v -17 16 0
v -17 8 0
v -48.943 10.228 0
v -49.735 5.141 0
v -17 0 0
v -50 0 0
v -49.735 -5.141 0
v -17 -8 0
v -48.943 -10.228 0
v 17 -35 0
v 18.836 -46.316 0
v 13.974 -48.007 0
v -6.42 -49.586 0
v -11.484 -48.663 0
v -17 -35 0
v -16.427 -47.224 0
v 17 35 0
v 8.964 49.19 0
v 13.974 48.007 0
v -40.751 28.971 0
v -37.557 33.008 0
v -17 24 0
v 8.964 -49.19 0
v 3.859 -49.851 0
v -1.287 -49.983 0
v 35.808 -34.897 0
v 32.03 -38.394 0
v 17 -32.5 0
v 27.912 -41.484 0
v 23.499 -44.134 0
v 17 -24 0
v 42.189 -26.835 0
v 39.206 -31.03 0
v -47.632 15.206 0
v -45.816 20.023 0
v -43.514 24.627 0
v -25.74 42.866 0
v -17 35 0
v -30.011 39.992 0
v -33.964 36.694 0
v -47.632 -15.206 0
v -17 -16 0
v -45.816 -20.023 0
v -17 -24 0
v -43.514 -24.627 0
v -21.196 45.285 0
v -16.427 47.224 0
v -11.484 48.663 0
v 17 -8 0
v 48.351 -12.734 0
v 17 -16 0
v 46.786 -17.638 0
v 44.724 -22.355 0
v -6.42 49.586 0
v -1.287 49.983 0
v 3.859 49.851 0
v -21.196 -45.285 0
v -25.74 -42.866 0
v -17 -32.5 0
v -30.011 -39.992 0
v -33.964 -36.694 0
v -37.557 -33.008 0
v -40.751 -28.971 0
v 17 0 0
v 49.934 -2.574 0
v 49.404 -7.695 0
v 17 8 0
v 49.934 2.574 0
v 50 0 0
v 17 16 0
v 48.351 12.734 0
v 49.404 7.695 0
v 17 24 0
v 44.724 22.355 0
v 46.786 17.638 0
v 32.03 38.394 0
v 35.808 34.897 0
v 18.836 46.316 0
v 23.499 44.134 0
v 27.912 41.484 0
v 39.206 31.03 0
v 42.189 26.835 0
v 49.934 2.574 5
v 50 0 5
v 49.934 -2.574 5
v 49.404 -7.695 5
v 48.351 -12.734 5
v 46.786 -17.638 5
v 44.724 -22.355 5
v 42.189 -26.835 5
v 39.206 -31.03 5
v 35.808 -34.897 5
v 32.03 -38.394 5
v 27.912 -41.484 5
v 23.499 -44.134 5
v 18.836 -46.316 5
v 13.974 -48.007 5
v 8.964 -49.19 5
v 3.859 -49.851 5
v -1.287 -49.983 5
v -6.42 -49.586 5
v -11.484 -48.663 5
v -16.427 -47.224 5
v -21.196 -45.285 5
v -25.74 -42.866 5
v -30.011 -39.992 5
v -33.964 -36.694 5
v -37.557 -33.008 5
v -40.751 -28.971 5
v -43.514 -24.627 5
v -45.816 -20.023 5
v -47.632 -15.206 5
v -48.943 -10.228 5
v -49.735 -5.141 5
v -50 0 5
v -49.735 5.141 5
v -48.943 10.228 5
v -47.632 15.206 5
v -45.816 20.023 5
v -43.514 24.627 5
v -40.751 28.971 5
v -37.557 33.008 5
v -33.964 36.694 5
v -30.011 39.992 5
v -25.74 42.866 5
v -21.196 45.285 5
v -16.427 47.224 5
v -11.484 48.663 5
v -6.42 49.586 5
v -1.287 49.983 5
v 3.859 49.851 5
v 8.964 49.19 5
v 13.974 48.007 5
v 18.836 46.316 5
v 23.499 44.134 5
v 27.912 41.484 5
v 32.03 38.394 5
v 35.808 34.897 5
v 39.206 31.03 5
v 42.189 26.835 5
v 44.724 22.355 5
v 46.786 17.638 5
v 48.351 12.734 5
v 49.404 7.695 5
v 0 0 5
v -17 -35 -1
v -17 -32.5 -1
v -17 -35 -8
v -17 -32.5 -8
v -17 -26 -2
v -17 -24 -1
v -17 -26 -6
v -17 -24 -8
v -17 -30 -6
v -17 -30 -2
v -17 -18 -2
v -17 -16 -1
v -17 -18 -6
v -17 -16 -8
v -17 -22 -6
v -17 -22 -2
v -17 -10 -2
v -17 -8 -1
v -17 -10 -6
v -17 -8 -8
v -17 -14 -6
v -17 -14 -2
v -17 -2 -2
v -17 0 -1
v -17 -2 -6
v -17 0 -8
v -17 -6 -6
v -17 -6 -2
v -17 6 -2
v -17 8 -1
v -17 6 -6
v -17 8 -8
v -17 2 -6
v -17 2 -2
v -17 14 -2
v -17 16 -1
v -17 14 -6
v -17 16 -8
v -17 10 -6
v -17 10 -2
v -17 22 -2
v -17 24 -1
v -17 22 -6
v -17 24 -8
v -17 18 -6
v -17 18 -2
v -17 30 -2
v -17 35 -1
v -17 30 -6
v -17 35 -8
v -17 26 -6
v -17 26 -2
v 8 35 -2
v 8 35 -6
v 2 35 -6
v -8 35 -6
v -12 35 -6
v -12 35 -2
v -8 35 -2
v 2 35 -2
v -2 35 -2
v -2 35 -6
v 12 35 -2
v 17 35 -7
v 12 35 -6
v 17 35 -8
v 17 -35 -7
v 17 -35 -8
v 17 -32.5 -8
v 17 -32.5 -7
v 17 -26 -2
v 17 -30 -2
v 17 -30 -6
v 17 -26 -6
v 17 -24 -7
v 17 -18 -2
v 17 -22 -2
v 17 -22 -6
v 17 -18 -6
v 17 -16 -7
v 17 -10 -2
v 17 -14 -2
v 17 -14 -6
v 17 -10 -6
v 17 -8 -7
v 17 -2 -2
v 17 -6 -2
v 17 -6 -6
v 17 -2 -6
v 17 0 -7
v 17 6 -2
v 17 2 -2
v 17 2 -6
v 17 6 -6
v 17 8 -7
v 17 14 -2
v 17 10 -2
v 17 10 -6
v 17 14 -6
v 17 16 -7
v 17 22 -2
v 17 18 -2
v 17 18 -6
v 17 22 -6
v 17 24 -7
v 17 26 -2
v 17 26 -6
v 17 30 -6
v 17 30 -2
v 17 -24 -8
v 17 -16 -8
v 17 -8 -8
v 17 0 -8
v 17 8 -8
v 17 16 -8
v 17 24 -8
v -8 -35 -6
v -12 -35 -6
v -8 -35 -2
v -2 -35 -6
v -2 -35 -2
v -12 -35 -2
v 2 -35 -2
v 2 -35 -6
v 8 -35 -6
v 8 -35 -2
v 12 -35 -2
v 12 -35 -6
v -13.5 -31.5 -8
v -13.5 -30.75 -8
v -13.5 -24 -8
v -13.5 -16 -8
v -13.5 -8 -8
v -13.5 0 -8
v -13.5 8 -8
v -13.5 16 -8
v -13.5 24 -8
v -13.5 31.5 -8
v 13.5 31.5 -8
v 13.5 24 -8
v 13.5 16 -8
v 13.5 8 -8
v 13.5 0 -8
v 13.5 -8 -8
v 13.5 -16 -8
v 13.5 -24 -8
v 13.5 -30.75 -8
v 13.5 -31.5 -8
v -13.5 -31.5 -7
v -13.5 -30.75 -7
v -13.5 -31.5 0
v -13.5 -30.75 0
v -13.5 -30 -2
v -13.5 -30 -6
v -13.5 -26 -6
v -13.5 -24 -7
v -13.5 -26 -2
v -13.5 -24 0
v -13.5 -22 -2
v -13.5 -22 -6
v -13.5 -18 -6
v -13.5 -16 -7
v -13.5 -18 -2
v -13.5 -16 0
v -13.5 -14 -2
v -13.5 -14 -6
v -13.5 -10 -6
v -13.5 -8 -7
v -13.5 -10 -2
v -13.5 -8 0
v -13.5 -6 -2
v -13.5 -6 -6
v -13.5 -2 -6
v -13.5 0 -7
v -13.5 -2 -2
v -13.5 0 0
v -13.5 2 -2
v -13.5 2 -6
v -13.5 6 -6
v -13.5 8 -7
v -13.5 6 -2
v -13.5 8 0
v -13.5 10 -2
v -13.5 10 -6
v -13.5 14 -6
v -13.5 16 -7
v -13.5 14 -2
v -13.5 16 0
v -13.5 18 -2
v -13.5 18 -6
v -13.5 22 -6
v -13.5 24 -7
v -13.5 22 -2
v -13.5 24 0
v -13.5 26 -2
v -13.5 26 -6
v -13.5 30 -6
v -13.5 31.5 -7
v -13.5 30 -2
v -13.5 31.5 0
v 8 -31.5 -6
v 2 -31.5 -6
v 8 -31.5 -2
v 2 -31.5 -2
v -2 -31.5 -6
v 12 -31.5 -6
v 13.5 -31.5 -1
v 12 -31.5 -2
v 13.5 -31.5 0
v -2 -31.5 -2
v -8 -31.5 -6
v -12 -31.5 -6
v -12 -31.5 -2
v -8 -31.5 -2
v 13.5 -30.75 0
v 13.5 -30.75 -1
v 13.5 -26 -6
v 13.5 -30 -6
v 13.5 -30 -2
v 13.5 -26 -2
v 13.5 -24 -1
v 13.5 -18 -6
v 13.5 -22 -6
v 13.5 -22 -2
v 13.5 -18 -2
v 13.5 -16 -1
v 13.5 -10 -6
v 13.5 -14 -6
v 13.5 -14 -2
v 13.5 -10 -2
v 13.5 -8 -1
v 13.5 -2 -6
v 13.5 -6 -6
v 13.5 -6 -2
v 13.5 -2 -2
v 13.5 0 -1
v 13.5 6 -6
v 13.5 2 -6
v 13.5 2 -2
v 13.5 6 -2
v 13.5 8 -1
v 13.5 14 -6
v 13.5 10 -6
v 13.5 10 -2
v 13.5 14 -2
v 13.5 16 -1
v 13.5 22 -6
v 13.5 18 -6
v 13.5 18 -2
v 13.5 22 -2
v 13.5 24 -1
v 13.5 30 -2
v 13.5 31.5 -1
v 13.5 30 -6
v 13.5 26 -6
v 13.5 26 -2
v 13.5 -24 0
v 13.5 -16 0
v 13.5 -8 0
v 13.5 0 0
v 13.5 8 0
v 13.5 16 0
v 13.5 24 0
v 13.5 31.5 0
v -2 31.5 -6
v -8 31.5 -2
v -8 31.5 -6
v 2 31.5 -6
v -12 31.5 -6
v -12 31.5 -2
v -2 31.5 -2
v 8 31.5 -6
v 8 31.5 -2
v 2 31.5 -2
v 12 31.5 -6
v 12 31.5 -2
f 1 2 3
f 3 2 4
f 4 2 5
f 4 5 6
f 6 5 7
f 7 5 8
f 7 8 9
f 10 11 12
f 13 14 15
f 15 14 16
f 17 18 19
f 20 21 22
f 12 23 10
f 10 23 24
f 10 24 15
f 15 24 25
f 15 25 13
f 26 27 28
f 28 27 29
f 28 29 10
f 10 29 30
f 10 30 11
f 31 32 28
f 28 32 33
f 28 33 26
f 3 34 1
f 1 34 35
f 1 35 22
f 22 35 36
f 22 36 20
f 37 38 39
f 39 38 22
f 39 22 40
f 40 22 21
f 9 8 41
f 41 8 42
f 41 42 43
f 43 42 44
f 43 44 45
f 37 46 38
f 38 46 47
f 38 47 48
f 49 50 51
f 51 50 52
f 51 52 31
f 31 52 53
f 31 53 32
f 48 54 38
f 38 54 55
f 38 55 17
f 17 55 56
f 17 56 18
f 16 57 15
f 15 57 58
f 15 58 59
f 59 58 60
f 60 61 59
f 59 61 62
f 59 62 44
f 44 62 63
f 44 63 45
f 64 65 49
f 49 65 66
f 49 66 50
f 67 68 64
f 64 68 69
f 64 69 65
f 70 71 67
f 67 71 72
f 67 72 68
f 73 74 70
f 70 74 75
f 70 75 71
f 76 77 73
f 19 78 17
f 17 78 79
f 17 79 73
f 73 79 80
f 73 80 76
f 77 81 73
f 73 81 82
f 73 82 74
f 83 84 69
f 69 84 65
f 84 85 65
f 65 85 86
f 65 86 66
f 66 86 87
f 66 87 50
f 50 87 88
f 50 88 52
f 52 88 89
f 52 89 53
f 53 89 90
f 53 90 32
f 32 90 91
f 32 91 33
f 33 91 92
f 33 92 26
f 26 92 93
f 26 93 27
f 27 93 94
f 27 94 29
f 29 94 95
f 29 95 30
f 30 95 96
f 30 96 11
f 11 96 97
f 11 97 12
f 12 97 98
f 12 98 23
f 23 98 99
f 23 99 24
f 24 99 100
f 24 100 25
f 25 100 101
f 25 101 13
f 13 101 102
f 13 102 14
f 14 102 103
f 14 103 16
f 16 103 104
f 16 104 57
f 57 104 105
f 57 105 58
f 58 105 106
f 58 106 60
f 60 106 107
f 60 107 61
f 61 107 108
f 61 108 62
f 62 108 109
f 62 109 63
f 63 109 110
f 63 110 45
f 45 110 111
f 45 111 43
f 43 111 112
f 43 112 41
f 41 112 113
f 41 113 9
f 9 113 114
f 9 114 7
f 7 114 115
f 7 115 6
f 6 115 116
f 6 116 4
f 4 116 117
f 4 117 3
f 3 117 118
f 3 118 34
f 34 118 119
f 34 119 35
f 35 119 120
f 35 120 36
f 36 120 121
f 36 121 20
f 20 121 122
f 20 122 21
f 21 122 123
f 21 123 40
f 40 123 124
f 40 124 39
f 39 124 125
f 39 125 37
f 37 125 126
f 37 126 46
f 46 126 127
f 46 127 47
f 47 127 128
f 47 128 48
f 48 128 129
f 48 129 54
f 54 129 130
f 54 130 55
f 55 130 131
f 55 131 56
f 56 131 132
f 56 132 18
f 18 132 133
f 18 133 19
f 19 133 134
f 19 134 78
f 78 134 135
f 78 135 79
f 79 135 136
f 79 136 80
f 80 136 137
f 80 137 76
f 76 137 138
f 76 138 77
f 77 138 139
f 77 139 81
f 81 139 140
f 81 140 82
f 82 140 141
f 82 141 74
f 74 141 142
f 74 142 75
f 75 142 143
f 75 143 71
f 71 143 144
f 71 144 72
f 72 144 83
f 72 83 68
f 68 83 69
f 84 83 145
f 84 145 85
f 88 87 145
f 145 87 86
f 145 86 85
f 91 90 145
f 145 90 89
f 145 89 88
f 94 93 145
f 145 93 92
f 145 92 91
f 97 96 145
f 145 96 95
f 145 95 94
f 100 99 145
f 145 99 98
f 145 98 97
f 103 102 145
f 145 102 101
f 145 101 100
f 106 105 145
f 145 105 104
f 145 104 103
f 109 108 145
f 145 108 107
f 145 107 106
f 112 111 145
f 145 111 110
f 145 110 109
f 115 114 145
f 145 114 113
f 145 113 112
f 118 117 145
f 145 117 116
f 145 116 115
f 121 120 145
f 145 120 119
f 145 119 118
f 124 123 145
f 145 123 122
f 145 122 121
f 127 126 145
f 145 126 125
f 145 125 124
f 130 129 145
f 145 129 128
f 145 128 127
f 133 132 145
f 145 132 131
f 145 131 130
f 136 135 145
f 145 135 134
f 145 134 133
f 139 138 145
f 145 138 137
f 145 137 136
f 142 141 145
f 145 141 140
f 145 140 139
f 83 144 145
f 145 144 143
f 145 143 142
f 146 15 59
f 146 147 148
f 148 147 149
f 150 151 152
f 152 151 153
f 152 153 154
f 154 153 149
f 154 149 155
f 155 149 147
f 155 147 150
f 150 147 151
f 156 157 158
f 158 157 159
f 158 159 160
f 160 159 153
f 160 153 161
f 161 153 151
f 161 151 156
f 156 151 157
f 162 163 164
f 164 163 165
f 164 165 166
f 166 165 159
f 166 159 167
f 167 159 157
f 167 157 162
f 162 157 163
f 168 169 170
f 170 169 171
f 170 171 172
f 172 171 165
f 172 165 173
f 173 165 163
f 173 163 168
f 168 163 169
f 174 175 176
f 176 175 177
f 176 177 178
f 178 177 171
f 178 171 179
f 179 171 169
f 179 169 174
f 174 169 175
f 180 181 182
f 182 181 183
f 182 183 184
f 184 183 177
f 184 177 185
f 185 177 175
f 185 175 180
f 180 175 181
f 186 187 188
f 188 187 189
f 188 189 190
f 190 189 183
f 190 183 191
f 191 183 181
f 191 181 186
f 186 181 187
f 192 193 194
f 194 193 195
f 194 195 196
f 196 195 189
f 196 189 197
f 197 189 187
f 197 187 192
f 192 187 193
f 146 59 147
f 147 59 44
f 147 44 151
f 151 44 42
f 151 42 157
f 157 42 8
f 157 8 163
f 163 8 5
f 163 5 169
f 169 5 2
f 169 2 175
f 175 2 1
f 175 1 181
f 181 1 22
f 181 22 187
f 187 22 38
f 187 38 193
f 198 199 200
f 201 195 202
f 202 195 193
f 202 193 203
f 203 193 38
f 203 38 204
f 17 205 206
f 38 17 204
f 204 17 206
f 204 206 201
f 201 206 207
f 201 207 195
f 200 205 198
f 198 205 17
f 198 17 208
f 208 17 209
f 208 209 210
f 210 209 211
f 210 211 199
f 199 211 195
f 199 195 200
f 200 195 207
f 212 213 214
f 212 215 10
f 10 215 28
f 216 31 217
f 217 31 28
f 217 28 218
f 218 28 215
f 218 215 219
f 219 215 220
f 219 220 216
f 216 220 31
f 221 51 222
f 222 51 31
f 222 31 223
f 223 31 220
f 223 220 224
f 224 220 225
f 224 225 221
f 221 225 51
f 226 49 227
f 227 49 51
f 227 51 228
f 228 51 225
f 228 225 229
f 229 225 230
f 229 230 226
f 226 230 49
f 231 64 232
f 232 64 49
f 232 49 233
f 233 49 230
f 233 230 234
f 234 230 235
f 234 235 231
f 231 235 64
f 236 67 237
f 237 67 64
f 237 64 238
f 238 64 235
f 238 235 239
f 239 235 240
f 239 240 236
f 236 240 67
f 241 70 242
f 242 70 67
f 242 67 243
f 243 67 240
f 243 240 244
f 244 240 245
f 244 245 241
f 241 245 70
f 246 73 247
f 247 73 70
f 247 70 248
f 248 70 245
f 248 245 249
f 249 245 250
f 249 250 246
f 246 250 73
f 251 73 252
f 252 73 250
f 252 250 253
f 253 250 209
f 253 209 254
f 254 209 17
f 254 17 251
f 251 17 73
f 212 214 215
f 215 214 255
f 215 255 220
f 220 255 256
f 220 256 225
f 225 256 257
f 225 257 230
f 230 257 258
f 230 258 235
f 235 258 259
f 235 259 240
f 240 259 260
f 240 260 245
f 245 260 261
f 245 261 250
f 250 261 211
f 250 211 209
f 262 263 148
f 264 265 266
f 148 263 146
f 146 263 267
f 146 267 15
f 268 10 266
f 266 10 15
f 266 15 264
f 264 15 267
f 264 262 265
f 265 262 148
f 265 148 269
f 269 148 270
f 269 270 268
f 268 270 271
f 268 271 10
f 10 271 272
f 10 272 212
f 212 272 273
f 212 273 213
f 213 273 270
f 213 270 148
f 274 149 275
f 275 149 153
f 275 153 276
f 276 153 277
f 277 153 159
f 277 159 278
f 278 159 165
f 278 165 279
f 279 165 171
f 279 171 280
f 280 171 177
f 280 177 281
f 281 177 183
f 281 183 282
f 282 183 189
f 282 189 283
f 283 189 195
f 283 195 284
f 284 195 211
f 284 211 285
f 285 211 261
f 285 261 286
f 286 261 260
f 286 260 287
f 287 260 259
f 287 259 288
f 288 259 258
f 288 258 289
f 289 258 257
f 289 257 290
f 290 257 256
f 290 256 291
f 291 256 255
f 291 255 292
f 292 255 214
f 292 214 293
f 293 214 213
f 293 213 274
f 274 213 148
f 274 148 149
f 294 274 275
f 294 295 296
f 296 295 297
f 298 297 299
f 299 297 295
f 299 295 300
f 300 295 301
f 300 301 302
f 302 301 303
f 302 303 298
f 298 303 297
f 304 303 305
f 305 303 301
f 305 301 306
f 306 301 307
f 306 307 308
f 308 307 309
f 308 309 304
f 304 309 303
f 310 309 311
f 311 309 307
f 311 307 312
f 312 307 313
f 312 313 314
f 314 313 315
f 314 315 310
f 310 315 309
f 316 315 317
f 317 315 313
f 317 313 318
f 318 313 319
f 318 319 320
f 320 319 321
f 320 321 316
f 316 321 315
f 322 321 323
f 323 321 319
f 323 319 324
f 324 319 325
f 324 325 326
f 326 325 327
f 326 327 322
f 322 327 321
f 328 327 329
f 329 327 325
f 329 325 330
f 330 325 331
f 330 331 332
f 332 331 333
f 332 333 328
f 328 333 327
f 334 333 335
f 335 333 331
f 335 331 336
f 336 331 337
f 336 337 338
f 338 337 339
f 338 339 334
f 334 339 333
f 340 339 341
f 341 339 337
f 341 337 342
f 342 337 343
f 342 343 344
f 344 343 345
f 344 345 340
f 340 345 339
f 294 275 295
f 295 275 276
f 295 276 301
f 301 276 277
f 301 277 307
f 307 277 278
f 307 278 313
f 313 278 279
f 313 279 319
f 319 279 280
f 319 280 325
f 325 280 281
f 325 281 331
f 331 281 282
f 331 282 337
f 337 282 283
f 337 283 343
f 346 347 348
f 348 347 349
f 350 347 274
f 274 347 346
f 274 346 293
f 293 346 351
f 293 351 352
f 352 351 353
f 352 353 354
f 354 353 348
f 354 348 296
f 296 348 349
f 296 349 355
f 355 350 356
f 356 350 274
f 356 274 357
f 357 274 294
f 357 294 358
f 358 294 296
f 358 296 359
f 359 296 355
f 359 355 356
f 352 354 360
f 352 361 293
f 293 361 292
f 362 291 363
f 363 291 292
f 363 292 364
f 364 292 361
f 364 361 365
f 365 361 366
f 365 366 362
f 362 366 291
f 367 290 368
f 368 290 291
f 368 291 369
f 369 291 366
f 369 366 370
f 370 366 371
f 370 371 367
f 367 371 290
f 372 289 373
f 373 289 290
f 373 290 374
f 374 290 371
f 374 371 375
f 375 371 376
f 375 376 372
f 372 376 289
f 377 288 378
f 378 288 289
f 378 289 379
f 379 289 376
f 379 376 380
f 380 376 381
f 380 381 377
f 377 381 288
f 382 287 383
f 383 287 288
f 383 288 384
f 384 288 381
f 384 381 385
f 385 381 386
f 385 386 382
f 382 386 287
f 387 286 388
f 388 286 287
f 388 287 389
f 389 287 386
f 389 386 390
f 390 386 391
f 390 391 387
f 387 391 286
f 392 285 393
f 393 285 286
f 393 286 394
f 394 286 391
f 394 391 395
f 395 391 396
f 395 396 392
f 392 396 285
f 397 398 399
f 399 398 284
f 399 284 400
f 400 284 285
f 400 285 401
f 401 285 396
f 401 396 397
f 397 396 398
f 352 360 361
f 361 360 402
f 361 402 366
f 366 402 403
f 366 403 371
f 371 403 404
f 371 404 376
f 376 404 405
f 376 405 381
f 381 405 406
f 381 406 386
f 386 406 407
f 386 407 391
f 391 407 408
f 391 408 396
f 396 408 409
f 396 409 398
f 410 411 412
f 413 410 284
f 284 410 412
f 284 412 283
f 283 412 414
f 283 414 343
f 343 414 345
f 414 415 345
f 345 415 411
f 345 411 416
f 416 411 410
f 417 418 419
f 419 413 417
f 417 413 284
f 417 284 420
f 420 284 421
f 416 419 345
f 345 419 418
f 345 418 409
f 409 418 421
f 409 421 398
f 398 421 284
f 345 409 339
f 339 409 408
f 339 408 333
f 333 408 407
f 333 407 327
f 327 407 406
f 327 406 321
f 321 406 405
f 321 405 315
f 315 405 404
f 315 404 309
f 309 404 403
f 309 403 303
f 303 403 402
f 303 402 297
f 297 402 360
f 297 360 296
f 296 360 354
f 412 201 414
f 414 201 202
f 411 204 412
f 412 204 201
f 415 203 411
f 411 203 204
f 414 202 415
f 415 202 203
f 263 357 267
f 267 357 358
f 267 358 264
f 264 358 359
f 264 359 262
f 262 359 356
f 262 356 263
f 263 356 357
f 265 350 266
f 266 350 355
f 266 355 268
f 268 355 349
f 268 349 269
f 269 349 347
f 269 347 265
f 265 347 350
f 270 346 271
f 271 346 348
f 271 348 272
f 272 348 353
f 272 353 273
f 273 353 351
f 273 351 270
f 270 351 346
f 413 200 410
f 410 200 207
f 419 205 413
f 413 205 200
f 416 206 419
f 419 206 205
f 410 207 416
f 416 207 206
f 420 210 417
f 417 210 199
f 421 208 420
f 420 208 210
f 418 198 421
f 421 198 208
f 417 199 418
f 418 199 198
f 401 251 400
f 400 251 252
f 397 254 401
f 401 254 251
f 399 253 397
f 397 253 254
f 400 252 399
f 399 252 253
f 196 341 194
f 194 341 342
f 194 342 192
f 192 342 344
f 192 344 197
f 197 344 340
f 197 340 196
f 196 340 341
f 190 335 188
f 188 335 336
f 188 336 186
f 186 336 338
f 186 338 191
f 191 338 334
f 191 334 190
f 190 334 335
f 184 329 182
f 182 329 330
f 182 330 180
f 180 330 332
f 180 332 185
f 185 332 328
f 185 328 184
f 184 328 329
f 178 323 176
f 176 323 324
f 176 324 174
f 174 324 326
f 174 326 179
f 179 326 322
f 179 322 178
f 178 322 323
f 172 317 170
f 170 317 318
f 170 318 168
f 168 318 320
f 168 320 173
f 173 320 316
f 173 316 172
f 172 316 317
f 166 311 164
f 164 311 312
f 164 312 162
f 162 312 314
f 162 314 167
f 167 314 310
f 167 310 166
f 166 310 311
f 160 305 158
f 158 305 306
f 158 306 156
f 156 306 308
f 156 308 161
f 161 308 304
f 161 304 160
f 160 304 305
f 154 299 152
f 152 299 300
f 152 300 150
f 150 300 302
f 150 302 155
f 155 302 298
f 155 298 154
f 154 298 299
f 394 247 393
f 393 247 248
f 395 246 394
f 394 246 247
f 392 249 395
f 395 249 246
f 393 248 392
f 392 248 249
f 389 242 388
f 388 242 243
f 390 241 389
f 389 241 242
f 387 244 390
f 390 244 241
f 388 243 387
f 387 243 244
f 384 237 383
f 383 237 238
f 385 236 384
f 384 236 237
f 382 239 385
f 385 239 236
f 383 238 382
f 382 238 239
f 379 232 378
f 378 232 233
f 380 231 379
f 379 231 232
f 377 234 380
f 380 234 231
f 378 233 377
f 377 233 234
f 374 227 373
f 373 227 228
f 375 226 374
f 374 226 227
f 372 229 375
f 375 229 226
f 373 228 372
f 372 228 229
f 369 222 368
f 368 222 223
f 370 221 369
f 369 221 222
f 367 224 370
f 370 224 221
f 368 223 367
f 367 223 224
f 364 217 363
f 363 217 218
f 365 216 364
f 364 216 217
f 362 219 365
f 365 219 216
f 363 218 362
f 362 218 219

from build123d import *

# Parameters (mm, degrees)
SKETCH1_R           = 50
BOSS_EXTRUDE1_DEPTH = 5
SKETCH2_W           = 34
SKETCH2_H           = 70
BOSS_EXTRUDE3_DEPTH = 8
SKETCH3_W           = 27
SKETCH3_H           = 63
CUT_EXTRUDE1_DEPTH  = 8
SKETCH4_W           = 4
SKETCH4_H           = 4
CUT_EXTRUDE2_DEPTH  = 99.939375377
LPATTERN1_COUNT     = 3
LPATTERN1_PITCH     = 10
SKETCH5_W           = 4
SKETCH5_H           = 4
CUT_EXTRUDE3_DEPTH  = 84.982140959
LPATTERN2_COUNT     = 8
LPATTERN2_PITCH     = 8


with BuildPart() as part:
    # Sketch1 → Boss-Extrude1 (new body)
    with BuildSketch(Plane.XY):
        Circle(SKETCH1_R)
    extrude(amount=BOSS_EXTRUDE1_DEPTH)

    # Sketch2 → Boss-Extrude3 (add)
    with BuildSketch(Plane(origin=(0, 0, 0), x_dir=(-1, 0, 0), z_dir=(0, 0, -1))):
        Rectangle(SKETCH2_W, SKETCH2_H)
    extrude(amount=BOSS_EXTRUDE3_DEPTH)

    # Sketch3 → Cut-Extrude1 (cut)
    with BuildSketch(Plane(origin=(0, 0, -8), x_dir=(-1, 0, 0), z_dir=(0, 0, -1))):
        Rectangle(SKETCH3_W, SKETCH3_H)
    extrude(amount=-CUT_EXTRUDE1_DEPTH, mode=Mode.SUBTRACT)

    # Sketch4 → Cut-Extrude2 (cut, through all)
    with BuildSketch(Plane.XZ.offset(35)):
        with Locations((-10, -4)):
            Rectangle(SKETCH4_W, SKETCH4_H)
    cut_extrude2 = extrude(amount=-CUT_EXTRUDE2_DEPTH, mode=Mode.SUBTRACT)

    # LPattern1: Cut-Extrude2 ×3
    with Locations(*[(i * LPATTERN1_PITCH, 0, 0) for i in range(1, LPATTERN1_COUNT)]):
        add(cut_extrude2, mode=Mode.SUBTRACT)

    # Sketch5 → Cut-Extrude3 (cut, through all)
    with BuildSketch(Plane.ZY.offset(17)):
        with Locations((-4, 28)):
            Rectangle(SKETCH5_W, SKETCH5_H)
    cut_extrude3 = extrude(amount=-CUT_EXTRUDE3_DEPTH, mode=Mode.SUBTRACT)

    # LPattern2: Cut-Extrude3 ×8
    with Locations(*[(0, -i * LPATTERN2_PITCH, 0) for i in range(1, LPATTERN2_COUNT)]):
        add(cut_extrude3, mode=Mode.SUBTRACT)


solid = part.part
